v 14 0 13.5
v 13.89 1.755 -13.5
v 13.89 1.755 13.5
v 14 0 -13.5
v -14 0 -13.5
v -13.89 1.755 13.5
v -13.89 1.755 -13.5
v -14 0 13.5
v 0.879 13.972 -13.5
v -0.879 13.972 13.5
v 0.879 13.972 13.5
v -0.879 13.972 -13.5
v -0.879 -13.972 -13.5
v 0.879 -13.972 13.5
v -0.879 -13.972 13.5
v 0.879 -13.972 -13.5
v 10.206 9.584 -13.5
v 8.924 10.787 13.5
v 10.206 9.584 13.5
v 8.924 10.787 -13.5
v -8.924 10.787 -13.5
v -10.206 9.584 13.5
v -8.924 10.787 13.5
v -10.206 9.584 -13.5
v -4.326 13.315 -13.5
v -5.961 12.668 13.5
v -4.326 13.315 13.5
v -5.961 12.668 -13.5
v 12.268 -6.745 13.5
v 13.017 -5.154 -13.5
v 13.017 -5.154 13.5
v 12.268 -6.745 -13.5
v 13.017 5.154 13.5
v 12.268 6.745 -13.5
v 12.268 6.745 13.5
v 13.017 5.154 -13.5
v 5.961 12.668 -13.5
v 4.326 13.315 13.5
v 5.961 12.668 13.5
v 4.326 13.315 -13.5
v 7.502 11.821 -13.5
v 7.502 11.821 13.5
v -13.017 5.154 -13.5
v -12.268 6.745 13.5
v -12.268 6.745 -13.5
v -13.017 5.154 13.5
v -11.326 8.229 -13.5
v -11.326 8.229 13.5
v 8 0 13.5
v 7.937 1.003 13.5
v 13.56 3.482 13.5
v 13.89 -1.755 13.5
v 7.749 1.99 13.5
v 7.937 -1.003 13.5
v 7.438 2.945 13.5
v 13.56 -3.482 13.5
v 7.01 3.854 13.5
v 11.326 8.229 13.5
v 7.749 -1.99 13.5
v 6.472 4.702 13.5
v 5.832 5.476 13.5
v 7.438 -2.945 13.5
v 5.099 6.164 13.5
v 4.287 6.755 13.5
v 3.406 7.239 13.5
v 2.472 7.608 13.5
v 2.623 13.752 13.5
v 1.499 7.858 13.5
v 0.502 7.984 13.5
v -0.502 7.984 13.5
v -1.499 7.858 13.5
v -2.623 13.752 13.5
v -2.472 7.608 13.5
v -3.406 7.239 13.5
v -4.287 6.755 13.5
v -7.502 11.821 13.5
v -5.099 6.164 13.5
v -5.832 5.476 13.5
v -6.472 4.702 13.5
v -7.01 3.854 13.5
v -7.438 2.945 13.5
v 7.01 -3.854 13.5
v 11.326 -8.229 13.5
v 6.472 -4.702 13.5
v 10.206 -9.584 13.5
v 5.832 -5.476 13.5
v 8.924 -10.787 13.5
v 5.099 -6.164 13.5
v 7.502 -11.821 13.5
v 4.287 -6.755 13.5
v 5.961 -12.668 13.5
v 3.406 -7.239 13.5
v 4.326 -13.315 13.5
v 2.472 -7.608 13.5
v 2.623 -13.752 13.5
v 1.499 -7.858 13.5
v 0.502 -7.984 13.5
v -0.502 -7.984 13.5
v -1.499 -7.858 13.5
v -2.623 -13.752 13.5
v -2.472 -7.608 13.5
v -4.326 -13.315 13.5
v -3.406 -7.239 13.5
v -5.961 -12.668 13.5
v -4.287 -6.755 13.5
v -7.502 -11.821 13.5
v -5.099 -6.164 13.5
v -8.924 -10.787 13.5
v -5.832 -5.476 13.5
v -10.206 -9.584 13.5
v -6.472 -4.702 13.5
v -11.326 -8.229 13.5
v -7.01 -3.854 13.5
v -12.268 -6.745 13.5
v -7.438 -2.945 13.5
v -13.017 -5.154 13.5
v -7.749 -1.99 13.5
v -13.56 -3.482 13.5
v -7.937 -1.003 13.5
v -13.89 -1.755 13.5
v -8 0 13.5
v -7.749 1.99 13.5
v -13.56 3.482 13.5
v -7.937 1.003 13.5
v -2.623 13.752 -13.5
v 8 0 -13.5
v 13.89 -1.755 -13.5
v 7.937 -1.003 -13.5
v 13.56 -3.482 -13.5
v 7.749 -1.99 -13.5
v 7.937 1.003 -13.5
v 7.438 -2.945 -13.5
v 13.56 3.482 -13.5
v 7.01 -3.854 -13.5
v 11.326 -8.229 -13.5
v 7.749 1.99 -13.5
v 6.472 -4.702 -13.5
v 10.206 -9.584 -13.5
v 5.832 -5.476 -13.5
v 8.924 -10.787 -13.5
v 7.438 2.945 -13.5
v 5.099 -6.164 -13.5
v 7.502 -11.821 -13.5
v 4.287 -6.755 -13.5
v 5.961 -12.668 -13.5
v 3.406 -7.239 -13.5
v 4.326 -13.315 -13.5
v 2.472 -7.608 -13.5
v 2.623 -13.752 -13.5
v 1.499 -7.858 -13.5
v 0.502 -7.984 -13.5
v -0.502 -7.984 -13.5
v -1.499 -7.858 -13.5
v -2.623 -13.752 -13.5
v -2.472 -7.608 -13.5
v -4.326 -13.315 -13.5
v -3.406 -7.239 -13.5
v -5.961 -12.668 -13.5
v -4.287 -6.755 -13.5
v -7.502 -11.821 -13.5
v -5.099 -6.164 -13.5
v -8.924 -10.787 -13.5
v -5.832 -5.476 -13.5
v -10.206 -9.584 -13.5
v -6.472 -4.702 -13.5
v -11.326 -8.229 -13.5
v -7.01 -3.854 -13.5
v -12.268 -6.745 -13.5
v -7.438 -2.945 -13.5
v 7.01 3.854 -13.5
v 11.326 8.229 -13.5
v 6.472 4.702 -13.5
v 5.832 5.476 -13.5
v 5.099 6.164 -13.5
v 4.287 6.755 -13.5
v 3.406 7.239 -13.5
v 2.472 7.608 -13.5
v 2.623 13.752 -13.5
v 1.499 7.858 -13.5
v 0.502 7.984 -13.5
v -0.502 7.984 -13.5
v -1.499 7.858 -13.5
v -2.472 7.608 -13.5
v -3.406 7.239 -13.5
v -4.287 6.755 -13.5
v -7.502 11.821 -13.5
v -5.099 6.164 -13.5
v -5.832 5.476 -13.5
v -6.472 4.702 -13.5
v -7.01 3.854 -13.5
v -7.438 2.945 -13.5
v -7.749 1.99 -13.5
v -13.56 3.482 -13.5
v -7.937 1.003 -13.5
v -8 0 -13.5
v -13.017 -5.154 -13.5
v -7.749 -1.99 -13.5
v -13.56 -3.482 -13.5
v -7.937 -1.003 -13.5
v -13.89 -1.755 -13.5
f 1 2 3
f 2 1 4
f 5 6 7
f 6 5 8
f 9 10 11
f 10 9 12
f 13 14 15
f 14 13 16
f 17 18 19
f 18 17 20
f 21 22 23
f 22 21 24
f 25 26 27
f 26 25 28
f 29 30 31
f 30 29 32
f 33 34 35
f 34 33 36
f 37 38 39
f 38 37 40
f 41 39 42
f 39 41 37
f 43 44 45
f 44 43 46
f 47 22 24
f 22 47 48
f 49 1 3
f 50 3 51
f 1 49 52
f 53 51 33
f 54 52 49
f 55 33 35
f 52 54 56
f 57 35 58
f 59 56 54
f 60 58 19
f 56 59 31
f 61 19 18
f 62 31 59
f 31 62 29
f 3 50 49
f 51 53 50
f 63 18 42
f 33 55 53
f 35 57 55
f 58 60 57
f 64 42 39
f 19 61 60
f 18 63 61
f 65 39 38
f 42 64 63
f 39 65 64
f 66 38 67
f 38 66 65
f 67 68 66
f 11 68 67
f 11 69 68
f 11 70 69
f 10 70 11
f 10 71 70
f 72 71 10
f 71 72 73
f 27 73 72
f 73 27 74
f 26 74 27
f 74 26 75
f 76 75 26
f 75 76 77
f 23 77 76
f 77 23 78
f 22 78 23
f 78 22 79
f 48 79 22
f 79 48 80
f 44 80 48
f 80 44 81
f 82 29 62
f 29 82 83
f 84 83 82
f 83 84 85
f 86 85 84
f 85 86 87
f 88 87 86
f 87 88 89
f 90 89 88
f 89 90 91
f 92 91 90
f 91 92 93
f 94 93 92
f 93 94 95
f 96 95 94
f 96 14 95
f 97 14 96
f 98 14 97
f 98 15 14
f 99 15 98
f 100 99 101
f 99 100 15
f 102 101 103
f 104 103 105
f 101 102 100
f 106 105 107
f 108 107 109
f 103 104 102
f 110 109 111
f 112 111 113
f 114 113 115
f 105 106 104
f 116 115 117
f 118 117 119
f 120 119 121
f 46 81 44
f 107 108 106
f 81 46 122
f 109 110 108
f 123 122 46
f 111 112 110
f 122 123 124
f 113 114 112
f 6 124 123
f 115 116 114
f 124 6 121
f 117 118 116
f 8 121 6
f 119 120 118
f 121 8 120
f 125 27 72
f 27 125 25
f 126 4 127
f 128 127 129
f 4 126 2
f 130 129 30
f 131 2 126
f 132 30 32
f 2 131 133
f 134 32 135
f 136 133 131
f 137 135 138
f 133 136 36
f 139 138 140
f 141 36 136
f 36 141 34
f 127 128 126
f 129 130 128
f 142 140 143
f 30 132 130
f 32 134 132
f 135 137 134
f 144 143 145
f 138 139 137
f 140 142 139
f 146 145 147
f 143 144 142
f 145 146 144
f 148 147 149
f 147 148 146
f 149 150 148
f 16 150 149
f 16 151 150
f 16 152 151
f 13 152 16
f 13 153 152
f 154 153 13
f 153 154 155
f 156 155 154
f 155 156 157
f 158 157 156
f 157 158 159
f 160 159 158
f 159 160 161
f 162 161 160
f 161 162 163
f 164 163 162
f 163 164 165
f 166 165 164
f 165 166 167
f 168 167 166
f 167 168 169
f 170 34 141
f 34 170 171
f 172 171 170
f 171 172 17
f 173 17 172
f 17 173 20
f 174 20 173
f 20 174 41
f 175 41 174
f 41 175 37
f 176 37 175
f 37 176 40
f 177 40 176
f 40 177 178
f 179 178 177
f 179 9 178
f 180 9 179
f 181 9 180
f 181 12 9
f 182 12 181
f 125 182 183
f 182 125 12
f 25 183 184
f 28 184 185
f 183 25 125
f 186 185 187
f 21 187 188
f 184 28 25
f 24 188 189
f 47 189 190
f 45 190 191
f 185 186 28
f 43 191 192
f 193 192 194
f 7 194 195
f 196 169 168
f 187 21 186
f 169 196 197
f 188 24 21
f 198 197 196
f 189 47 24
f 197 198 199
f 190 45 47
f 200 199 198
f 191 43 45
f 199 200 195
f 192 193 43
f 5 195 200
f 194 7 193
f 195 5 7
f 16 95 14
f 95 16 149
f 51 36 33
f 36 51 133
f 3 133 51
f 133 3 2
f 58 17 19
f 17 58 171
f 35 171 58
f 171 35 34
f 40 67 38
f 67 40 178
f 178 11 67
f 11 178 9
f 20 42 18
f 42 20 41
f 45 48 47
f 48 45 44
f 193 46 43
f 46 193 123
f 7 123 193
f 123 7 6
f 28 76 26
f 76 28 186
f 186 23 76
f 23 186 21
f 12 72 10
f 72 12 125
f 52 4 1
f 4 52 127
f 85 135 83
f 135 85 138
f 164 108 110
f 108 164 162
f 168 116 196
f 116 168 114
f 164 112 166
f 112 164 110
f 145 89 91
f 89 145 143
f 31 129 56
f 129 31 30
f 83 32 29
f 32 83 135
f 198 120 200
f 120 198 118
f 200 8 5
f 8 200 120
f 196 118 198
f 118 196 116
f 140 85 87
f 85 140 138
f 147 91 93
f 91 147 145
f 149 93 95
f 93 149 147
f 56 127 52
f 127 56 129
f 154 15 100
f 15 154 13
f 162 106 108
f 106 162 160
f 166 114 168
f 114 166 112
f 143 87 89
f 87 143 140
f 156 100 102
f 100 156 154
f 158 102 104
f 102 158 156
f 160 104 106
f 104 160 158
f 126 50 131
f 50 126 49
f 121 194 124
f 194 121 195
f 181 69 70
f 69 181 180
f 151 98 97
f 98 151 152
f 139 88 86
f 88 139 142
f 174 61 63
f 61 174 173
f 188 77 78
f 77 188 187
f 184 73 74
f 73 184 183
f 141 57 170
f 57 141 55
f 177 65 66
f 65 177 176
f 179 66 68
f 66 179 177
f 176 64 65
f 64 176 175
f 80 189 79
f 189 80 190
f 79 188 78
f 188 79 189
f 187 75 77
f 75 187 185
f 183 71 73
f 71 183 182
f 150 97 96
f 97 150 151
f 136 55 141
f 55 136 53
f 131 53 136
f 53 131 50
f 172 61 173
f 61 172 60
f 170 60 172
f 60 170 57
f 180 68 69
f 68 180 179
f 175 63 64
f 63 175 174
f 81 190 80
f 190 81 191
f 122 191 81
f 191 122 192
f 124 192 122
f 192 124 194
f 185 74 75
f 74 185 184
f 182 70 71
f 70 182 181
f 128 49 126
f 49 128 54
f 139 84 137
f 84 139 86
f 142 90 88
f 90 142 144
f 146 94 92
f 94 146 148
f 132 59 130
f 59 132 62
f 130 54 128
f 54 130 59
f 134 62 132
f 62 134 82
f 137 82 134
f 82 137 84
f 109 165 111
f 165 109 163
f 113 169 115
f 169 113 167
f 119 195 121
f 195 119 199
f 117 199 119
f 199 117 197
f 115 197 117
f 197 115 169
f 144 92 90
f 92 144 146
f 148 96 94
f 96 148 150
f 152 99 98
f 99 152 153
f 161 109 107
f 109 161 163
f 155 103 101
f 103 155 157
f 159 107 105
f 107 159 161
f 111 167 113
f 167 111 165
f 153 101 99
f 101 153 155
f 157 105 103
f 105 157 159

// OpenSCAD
$fn = 50;


difference() {
	union() {
		translate(v = [0, 0, -13.5000000000]) {
			cylinder(h = 27, r = 14.0000000000);
		}
	}
	union() {
		translate(v = [0, 0, -100.0000000000]) {
			cylinder(h = 200, r = 8);
		}
	}
}
